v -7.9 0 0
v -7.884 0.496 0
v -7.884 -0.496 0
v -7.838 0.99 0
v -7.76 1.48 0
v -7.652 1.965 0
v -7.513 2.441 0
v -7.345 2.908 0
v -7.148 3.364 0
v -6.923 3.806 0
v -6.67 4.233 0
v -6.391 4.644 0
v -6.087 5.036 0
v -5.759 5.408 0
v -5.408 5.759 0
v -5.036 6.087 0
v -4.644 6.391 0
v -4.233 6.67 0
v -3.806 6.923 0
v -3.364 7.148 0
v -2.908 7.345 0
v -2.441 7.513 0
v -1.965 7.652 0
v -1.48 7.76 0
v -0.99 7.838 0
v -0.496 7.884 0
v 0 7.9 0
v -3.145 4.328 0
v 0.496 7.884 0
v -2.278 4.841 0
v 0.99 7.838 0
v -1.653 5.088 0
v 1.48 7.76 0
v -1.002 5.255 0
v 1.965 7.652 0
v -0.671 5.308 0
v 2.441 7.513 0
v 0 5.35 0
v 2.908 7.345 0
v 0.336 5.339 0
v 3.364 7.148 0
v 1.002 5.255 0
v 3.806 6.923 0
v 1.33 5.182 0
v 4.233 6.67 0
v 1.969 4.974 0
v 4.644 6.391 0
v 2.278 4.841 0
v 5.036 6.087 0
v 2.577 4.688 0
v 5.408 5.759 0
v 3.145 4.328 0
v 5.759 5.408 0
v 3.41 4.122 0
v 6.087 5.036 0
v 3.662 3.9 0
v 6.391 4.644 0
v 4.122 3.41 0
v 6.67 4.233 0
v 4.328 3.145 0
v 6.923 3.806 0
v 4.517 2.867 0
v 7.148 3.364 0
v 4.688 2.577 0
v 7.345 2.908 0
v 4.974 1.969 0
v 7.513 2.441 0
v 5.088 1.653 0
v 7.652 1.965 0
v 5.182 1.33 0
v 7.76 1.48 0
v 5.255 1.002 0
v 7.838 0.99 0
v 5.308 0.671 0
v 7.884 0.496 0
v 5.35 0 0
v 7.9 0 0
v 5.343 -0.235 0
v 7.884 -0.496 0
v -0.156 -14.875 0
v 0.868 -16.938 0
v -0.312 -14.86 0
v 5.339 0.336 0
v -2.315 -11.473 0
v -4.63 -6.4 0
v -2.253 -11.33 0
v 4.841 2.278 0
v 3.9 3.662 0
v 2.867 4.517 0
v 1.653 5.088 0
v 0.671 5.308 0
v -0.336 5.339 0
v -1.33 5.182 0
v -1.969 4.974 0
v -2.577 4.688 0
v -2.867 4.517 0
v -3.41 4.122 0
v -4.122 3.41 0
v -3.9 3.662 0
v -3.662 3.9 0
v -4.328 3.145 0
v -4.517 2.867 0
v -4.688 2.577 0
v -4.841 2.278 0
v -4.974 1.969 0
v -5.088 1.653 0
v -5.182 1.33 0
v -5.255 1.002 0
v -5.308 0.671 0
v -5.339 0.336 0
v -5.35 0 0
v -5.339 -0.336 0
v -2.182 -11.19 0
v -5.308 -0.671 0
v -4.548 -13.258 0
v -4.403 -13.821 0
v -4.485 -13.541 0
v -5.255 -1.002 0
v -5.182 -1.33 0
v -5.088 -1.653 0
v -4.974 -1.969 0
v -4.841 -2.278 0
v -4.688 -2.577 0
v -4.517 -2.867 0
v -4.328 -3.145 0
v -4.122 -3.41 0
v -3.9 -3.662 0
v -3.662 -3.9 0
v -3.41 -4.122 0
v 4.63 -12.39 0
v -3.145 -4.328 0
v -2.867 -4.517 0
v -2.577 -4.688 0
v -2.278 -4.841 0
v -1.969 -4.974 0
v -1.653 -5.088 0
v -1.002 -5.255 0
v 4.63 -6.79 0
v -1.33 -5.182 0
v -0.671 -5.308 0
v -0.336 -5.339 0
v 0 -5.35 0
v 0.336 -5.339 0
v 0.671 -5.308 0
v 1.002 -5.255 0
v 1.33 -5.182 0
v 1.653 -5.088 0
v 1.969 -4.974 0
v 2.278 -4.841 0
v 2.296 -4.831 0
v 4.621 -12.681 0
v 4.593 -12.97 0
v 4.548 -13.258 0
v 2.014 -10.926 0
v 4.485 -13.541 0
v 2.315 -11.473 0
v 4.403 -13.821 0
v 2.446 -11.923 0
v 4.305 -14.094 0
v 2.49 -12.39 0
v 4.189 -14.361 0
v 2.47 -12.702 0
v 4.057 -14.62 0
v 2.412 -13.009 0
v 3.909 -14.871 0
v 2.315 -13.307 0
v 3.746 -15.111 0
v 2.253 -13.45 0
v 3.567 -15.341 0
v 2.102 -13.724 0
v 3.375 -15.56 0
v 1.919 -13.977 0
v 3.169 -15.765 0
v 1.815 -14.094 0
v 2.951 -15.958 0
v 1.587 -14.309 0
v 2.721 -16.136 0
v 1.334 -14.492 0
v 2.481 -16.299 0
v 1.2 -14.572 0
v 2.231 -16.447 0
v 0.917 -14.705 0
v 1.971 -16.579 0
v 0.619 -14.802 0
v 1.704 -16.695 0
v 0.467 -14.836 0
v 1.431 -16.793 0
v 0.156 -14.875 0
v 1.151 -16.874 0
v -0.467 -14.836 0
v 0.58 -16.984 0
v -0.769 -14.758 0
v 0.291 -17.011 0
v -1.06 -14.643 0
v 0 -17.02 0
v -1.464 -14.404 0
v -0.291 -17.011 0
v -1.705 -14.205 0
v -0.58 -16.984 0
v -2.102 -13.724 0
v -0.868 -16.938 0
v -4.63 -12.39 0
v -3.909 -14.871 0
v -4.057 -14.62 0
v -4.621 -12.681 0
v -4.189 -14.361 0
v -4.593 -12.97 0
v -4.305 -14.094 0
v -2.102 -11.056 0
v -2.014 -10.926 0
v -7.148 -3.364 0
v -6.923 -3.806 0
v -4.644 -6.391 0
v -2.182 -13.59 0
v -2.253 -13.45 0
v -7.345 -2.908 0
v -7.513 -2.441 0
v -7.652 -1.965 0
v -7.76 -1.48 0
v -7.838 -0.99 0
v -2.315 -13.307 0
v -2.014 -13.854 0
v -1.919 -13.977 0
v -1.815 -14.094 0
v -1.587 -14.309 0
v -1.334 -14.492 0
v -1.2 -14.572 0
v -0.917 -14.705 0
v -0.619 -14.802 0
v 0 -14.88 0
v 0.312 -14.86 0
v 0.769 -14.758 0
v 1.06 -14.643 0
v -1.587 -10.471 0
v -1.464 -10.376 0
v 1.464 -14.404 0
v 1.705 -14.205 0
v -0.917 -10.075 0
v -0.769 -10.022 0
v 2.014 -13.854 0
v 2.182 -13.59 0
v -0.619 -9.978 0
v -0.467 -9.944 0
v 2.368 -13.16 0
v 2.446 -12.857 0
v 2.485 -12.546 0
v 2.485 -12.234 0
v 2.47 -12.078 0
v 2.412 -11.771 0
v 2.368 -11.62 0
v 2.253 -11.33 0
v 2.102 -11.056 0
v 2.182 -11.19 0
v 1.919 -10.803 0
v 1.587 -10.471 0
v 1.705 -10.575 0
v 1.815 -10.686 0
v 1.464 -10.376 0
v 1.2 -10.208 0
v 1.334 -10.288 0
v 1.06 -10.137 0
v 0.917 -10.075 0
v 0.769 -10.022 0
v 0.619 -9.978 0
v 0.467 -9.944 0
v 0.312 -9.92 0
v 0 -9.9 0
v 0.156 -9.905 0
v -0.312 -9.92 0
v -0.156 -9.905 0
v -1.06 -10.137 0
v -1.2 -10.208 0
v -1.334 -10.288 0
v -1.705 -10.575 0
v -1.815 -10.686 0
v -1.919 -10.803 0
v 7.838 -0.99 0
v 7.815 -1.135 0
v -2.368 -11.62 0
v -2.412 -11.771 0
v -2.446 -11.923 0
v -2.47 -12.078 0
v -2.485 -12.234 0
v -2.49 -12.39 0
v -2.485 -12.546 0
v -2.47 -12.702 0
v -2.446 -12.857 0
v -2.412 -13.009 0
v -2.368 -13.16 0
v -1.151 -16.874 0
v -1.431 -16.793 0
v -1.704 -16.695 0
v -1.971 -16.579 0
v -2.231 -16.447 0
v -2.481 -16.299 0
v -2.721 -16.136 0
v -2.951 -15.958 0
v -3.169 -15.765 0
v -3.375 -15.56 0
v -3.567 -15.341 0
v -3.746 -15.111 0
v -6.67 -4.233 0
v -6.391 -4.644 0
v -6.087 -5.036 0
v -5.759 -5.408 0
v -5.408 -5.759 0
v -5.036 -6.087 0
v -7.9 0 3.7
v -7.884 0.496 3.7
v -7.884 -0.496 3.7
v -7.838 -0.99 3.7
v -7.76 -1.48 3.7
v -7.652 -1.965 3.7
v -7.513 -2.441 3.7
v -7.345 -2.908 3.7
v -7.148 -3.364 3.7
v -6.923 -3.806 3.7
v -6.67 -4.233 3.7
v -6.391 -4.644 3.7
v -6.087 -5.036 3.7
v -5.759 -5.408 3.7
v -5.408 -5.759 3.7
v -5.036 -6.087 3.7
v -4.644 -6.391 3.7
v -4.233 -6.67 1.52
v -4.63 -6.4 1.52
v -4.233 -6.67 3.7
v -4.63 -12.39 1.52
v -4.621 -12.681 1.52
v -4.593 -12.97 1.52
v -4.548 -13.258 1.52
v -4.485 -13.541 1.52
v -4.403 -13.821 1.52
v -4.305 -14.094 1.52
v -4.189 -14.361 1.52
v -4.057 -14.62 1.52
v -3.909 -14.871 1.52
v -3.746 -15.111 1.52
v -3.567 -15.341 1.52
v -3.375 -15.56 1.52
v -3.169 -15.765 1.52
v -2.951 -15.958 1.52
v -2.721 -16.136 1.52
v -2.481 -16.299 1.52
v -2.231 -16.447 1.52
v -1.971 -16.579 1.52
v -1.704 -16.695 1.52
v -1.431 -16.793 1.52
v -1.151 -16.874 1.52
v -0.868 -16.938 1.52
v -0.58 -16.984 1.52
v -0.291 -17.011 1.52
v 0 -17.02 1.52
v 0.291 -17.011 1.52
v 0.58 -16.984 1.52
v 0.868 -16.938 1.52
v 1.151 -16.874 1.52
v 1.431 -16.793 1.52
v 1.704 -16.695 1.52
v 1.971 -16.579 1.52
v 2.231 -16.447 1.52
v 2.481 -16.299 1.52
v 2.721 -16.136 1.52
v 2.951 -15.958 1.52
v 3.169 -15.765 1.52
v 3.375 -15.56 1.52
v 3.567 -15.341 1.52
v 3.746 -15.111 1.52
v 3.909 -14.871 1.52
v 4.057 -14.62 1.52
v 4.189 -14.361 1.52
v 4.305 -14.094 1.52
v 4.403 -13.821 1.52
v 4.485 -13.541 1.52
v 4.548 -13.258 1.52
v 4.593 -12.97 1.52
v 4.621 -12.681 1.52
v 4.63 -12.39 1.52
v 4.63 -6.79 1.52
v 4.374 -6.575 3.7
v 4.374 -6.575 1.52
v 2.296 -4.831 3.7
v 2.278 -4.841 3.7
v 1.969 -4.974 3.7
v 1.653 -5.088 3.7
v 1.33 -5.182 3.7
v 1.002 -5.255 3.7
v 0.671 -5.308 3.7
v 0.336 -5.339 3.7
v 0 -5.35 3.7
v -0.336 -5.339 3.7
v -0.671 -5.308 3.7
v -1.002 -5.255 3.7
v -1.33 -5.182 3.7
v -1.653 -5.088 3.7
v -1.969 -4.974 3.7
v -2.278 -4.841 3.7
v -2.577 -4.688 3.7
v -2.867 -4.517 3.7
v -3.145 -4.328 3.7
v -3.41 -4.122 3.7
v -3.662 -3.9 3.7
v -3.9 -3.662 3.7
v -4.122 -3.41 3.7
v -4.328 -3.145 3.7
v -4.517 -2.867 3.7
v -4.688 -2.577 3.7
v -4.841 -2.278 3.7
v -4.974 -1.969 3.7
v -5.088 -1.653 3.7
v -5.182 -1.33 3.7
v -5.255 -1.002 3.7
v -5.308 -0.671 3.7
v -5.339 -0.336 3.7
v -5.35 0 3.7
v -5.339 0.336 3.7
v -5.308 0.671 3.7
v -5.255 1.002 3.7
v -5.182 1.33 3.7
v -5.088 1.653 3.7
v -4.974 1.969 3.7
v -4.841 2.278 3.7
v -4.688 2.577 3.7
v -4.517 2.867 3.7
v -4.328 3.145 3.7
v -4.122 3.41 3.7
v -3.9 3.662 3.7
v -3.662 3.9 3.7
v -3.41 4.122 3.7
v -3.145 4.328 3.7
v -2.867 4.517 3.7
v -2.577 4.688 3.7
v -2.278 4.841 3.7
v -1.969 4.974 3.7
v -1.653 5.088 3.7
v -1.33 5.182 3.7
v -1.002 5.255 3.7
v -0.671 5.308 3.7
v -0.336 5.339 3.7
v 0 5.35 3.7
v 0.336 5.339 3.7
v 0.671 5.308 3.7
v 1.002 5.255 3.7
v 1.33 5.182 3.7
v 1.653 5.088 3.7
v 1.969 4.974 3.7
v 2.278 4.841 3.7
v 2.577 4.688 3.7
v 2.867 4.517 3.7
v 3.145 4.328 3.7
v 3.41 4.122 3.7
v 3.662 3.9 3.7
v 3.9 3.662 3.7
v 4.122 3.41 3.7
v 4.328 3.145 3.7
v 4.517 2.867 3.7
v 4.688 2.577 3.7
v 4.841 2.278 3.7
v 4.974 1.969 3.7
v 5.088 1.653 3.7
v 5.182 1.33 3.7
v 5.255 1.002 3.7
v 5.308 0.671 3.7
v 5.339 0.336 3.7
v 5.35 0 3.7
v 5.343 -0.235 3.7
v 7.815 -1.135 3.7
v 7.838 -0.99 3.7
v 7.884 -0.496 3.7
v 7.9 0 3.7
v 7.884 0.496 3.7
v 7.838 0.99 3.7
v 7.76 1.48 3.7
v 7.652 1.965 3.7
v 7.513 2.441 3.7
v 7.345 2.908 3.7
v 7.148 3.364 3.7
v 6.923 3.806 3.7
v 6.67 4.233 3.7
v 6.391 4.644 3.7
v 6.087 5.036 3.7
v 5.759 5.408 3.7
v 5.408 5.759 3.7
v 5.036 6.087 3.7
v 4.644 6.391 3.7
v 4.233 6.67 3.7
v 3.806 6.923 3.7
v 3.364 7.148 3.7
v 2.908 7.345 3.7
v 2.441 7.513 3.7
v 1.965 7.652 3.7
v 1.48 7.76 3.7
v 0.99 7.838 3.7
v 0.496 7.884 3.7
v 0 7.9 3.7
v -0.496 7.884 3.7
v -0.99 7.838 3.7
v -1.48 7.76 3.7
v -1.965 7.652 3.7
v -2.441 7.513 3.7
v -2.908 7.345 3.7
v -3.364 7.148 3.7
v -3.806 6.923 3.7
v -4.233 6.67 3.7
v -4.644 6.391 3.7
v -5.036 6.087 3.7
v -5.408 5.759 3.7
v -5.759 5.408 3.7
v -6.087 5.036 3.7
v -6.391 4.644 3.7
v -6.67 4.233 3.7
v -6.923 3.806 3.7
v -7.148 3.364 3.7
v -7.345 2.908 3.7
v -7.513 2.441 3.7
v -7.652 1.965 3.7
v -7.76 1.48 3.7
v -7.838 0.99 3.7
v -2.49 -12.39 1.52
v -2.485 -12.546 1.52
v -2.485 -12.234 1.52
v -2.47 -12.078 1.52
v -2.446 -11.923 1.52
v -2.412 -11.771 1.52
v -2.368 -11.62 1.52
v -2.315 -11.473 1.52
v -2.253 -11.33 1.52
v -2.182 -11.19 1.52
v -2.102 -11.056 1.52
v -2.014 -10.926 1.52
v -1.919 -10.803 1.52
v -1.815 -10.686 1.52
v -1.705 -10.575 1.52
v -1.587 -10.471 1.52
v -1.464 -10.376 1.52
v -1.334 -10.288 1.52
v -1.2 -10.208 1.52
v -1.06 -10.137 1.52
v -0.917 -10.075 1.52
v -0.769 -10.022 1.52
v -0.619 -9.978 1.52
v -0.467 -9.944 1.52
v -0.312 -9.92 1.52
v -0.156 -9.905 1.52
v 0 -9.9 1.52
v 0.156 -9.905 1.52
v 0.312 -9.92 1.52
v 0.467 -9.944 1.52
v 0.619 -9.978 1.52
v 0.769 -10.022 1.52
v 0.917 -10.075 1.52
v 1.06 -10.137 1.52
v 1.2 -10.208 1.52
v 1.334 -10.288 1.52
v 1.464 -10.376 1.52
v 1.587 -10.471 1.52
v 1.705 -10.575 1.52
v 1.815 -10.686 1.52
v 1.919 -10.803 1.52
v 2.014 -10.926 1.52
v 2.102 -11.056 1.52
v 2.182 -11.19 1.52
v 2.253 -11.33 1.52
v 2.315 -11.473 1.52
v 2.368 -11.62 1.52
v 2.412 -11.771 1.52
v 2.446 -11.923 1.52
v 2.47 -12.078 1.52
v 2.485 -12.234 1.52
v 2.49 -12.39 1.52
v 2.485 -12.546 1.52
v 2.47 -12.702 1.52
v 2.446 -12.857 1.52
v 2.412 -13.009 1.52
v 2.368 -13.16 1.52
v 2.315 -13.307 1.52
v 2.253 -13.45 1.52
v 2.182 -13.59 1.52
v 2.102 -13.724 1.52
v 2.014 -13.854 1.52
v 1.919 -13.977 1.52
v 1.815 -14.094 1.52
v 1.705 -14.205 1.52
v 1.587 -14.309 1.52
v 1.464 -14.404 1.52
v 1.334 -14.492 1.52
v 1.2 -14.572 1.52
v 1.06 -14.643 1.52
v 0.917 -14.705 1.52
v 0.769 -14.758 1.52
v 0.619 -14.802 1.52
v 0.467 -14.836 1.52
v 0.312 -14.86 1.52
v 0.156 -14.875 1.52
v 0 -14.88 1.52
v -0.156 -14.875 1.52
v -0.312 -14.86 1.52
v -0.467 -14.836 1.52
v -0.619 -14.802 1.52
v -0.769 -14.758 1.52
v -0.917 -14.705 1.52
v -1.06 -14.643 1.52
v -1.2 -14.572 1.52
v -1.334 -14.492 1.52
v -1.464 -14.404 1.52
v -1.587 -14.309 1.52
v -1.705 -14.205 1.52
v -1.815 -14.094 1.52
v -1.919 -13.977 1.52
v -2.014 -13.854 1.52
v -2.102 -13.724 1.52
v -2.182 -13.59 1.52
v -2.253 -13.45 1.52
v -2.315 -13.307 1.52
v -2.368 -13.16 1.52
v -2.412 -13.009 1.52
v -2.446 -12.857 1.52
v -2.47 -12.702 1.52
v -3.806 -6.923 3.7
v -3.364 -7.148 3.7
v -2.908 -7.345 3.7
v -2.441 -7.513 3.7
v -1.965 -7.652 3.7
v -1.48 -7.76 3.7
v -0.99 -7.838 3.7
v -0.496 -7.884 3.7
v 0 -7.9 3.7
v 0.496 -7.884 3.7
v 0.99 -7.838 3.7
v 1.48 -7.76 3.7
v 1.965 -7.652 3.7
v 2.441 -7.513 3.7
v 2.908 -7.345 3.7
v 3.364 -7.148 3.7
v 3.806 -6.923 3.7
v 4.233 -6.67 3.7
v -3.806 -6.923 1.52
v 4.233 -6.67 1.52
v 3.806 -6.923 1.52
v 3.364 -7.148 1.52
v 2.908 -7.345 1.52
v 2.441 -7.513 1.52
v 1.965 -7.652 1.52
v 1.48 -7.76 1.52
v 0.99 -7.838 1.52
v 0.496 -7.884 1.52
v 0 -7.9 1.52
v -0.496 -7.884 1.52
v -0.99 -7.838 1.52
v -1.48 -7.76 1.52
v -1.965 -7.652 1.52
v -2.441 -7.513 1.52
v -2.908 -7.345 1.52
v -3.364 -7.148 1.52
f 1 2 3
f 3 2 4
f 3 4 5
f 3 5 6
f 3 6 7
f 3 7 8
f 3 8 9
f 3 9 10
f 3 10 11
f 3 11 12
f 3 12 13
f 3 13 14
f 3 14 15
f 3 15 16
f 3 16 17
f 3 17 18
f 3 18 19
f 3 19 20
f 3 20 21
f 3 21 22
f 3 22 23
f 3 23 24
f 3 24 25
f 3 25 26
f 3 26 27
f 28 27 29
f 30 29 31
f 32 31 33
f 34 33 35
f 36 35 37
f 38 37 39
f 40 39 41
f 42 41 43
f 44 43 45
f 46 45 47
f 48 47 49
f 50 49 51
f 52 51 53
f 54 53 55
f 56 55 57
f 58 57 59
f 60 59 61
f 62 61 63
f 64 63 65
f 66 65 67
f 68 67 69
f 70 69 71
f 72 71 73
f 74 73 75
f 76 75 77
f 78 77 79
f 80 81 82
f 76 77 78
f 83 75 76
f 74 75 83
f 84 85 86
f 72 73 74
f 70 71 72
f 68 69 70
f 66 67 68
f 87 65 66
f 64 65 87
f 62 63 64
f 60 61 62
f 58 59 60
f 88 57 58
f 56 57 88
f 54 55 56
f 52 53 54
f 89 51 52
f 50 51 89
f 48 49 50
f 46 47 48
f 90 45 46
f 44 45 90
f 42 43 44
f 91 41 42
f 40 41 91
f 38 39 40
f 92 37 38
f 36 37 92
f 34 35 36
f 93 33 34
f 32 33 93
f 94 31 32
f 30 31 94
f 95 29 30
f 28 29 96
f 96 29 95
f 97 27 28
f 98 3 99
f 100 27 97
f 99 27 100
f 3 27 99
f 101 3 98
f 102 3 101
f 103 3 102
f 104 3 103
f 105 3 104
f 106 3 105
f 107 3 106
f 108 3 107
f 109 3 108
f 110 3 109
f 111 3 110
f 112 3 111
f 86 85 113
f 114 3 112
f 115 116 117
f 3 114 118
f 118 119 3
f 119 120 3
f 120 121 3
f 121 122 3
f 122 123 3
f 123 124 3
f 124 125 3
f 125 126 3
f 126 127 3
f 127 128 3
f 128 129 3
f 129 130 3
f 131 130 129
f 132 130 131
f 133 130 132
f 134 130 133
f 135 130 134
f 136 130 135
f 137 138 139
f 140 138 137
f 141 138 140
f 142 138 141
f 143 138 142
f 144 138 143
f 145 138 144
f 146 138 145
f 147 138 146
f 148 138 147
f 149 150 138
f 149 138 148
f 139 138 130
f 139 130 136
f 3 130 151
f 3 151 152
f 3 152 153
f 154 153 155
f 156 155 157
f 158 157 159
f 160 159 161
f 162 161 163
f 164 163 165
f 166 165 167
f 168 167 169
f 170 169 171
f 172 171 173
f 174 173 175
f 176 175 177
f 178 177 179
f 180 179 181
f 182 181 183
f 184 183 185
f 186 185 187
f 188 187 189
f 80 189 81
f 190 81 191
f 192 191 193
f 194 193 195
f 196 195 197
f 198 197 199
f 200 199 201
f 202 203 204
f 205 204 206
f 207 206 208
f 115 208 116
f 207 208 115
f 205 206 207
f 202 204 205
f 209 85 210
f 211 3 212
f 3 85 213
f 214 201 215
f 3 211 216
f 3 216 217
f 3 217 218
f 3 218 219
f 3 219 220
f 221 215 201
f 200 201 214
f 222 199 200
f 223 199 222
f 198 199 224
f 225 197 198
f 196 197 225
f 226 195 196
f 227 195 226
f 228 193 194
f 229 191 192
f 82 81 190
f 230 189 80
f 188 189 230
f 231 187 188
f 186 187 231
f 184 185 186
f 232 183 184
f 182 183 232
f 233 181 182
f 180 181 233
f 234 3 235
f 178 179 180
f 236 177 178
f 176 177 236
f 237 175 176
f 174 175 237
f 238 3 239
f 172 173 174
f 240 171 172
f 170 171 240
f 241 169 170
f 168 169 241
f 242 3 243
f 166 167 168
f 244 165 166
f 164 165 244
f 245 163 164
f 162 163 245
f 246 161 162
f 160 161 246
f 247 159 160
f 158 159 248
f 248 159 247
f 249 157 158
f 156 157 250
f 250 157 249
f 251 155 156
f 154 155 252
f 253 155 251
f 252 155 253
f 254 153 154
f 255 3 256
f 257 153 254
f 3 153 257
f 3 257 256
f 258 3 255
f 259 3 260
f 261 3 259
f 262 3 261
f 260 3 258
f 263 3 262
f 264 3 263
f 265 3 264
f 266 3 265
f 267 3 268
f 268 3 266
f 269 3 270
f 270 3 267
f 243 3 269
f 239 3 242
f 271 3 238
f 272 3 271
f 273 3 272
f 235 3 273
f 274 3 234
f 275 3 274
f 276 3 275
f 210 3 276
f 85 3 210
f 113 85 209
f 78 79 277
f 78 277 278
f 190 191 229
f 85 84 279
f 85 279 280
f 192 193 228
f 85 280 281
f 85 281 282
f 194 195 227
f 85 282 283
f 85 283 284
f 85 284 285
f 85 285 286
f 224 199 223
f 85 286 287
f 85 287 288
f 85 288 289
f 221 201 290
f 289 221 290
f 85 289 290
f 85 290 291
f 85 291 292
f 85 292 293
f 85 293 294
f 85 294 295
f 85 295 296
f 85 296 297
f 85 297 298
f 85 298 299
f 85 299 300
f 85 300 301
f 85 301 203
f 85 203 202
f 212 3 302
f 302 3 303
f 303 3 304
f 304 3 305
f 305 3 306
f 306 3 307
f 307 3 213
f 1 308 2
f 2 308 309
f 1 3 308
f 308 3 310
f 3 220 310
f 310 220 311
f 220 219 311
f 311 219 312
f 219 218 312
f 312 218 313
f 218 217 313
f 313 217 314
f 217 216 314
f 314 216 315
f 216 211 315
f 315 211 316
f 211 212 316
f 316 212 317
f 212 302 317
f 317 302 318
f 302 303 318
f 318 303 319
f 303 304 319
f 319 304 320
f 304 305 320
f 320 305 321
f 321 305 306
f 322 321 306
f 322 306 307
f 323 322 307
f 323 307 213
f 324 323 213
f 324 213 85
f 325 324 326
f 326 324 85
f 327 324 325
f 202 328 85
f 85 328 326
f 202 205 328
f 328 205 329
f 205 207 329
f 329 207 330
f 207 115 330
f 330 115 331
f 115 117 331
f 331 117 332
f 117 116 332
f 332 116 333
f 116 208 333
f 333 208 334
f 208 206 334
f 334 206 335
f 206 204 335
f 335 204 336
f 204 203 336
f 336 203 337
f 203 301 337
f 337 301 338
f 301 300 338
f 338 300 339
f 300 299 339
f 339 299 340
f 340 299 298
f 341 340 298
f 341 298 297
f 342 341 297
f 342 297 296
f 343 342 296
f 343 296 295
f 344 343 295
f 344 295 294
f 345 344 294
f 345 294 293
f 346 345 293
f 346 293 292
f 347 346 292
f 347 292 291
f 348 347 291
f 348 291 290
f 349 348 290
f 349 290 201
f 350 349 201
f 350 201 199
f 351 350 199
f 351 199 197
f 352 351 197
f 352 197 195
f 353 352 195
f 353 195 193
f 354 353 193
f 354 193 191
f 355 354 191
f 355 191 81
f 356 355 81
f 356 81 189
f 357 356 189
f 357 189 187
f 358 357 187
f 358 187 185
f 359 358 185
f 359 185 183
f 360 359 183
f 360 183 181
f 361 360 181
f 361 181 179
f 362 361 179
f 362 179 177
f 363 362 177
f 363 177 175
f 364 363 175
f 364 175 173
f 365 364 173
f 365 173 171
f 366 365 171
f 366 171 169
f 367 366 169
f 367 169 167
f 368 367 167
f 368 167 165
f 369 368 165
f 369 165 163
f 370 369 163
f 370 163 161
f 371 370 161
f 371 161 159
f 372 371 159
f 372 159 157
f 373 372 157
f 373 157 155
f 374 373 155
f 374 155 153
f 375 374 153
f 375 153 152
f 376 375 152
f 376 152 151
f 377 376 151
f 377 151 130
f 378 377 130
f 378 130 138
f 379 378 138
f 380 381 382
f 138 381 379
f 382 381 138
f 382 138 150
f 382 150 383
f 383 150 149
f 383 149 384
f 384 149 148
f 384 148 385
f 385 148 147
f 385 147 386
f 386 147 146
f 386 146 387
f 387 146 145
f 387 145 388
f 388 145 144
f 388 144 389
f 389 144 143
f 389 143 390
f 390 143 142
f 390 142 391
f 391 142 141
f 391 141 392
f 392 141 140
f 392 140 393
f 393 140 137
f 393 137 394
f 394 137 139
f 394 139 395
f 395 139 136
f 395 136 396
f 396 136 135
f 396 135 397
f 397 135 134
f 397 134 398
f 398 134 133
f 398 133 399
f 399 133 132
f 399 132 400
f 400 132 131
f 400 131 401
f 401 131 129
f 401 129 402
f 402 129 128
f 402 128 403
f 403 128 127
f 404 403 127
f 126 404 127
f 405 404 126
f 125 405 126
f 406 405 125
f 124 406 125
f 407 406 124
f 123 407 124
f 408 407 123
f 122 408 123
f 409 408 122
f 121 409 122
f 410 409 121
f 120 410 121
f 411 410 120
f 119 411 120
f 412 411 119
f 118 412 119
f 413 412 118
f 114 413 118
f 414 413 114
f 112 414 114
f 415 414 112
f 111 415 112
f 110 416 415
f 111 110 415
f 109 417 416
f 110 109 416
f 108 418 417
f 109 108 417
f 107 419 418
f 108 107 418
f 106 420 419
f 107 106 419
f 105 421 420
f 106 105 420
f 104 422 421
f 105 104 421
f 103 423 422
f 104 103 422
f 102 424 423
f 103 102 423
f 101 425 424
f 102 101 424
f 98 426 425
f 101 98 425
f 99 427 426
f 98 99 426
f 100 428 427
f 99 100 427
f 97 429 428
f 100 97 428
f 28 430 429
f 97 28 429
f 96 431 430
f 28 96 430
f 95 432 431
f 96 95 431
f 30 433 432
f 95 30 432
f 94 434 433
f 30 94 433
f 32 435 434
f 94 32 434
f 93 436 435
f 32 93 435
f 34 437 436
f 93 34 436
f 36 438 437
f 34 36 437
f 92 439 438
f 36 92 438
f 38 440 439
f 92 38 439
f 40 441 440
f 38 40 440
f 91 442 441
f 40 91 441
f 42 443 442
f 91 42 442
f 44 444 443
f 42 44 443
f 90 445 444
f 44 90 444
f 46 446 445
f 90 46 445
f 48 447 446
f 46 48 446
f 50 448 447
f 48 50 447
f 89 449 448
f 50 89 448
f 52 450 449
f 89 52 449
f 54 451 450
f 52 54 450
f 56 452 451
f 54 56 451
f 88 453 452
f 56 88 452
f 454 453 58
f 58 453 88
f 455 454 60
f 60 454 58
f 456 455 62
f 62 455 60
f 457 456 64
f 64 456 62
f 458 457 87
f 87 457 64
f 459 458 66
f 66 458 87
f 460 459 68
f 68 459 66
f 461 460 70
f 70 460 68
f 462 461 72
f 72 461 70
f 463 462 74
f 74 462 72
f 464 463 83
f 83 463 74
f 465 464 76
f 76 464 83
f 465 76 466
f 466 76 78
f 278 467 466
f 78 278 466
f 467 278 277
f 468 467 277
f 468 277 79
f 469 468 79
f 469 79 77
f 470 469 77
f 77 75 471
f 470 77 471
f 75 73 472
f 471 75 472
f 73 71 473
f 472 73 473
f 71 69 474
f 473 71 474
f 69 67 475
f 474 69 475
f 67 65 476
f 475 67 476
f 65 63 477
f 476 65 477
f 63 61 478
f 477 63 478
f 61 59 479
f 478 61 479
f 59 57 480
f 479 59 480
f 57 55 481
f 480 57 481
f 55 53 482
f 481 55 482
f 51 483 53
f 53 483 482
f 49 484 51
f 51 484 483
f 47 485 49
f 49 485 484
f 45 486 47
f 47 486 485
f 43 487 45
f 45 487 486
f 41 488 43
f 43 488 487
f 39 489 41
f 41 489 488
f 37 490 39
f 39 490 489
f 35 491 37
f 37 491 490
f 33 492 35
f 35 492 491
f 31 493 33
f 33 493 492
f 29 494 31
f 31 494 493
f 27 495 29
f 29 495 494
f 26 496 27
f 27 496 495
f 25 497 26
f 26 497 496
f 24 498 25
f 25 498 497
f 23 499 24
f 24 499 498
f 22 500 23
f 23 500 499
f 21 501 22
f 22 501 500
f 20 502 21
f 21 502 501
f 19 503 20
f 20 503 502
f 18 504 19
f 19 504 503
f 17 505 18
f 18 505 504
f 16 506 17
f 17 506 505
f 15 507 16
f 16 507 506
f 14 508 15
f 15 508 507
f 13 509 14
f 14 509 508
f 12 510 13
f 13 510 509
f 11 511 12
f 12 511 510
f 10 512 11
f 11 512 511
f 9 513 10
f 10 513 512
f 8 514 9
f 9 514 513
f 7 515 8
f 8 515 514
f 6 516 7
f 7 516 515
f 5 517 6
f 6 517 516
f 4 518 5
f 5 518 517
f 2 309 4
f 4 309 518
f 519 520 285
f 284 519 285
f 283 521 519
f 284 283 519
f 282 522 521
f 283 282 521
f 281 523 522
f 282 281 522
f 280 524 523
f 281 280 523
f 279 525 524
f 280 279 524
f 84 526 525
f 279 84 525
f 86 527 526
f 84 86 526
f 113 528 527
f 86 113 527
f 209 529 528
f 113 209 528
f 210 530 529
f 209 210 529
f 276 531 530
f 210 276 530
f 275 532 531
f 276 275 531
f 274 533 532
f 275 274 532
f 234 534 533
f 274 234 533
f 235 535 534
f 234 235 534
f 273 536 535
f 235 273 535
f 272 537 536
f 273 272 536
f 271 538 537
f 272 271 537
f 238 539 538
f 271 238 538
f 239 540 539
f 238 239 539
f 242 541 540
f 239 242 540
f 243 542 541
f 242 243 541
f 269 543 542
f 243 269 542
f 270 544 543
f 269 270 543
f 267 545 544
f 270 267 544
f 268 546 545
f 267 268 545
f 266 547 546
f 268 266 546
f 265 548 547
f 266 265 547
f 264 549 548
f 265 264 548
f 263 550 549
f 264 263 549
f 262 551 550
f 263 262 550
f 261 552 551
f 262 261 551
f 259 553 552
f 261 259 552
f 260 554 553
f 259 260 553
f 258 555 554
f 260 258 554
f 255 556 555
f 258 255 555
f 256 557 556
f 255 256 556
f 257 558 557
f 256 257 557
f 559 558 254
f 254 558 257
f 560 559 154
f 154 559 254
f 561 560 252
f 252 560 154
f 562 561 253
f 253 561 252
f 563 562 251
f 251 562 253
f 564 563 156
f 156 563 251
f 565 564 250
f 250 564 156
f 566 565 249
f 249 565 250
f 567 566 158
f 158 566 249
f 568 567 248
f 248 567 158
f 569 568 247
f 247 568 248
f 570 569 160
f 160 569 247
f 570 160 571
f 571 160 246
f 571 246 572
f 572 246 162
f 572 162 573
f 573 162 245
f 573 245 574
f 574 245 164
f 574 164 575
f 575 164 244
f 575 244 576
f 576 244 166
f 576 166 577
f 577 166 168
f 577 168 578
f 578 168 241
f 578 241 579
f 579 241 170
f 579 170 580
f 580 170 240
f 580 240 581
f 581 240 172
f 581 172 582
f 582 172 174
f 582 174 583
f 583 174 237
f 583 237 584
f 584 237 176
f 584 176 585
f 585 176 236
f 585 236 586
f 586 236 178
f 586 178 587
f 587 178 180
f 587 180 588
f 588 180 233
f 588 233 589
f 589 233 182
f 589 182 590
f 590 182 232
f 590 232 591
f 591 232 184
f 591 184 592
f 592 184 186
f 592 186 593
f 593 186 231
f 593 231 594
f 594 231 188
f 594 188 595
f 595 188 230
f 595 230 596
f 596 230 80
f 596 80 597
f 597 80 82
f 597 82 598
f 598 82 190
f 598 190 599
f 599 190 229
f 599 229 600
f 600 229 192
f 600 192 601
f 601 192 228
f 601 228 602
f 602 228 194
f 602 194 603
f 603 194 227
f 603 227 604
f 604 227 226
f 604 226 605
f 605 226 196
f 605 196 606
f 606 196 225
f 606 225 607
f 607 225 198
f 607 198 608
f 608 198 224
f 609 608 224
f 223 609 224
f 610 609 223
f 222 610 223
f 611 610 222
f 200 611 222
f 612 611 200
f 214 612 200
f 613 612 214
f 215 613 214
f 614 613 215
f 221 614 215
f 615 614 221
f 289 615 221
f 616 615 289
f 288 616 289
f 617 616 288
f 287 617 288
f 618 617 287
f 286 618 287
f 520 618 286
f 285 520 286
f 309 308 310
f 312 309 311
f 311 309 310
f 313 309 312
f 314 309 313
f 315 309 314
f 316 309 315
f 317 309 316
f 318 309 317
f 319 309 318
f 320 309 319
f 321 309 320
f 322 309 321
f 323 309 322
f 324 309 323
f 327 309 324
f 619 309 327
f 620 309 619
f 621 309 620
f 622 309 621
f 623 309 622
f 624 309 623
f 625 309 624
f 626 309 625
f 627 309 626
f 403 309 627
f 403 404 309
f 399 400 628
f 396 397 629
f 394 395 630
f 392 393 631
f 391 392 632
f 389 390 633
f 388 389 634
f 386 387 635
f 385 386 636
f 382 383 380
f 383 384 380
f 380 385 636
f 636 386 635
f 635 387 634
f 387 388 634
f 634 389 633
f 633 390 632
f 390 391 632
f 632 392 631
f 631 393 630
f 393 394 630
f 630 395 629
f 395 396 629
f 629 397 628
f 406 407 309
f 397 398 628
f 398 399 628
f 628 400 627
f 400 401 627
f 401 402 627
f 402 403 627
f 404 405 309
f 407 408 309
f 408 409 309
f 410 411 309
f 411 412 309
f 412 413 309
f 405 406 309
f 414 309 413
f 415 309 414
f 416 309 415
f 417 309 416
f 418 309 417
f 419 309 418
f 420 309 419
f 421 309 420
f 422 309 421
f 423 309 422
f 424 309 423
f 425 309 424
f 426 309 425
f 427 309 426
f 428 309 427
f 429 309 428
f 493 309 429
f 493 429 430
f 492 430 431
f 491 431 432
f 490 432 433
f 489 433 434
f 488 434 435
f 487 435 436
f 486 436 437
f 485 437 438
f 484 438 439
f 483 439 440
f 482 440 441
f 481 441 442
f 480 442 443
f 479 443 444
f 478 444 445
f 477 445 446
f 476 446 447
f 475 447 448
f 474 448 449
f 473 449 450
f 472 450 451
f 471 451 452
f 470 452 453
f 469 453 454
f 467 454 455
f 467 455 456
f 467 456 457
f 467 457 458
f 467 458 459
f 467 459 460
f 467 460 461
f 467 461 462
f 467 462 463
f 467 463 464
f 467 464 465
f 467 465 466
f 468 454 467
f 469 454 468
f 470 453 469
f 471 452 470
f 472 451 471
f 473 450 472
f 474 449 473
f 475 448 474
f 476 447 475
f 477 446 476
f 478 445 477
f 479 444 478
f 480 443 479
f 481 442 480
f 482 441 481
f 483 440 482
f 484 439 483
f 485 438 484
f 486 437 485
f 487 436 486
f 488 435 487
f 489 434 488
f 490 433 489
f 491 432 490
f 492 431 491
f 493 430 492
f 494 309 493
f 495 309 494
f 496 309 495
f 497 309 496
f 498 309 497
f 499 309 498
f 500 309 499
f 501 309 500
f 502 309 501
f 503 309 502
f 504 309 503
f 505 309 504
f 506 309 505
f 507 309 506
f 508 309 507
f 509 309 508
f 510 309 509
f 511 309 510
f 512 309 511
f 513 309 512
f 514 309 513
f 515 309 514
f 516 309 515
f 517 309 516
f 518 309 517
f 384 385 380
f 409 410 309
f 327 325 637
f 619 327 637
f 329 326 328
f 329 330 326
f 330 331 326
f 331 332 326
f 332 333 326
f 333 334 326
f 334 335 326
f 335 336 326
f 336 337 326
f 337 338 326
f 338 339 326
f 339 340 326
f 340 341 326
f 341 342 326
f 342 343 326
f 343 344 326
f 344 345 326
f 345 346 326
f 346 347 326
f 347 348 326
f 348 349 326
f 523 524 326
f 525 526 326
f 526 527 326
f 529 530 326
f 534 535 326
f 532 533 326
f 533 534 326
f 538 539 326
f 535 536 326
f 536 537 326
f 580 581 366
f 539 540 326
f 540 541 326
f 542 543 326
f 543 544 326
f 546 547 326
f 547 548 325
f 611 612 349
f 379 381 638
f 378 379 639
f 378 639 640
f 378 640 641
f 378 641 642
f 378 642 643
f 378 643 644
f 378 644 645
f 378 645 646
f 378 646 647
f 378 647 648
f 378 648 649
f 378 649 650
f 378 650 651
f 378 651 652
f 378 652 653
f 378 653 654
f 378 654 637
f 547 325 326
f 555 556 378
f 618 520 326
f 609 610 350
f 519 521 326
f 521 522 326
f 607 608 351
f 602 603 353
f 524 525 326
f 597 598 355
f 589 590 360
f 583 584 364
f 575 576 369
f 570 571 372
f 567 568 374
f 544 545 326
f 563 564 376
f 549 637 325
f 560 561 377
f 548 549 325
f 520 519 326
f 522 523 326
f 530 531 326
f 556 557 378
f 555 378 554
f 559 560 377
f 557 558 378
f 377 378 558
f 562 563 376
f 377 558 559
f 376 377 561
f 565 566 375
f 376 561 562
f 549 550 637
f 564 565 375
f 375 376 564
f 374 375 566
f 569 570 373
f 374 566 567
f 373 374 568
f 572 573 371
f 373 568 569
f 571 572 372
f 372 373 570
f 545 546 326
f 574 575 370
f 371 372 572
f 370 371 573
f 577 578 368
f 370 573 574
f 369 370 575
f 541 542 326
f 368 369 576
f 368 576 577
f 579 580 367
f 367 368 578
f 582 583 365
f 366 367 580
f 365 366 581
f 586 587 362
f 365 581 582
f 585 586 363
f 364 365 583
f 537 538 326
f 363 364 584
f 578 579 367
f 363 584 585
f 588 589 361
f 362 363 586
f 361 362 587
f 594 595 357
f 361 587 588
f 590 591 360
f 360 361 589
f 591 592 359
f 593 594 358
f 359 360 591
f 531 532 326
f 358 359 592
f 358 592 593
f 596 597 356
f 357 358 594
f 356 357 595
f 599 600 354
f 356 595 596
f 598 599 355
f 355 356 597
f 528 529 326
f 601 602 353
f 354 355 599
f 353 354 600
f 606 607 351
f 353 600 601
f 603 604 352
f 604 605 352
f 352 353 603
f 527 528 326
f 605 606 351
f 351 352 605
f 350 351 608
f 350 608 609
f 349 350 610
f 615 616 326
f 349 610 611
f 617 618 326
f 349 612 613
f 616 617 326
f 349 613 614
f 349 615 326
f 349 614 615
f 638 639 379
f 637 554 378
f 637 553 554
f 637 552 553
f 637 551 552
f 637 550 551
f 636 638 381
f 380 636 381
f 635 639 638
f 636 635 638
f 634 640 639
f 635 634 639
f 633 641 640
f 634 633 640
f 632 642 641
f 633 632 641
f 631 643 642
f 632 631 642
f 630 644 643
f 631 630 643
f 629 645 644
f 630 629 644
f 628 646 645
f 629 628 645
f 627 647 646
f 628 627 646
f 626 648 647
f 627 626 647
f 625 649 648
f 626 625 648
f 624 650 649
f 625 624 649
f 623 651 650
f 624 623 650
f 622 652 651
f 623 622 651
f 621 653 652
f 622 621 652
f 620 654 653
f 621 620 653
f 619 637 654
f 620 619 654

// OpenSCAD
// Global Parameters
hook_diameter_ext   = 15.8;
hook_thickness      = 2.55;
hook_depth          = 3.7;
hook_opening        = 4.45;
eye_diameter        = 4.98;
eye_thickness       = 2.14;
eye_hook_gap        = 2;
eye_depth           = 1.52;

module curtainhook() {

    difference() {

        // Things that exist
        union() {
            translate( v = [ 0, -hook_diameter_ext/2 - (eye_diameter/2) - eye_hook_gap, 0 ] ) {

                // Body of eye
                cylinder( h = eye_depth, r = eye_diameter/2 + eye_thickness, $fn=100 );

                // Body of eye
                translate( v = [ -(eye_diameter + 2*eye_thickness)/2, 0, 0] ) {
                    cube( size = [eye_diameter + eye_thickness*2, eye_diameter/2 + eye_thickness + eye_hook_gap + hook_thickness/2, eye_depth] );
                }
            }

            // Body of hook
            cylinder( h = hook_depth, r = hook_diameter_ext/2, $fn=100 );
        }

        // Things to be cut out
        union() {

            // Hole in eye
            translate( v = [ 0, -hook_diameter_ext/2 - (eye_diameter/2) - eye_hook_gap, 0 ] ) {
                cylinder( h = hook_depth, r = eye_diameter/2, $fn=100 );
            }

            // Hole in centre of hook
            cylinder( h = hook_depth, r = hook_diameter_ext/2 - hook_thickness, $fn=100 );

            // Opening
            rotate( a = [ 0, 0, -40] ) {
                translate( v = [hook_diameter_ext/2 - hook_thickness * 1.5, -hook_opening/2, 0] ) {
                    # cube( size = [hook_thickness * 2, hook_opening, hook_thickness*1.5] );
                }
            }

            // Opening
            translate( v = [hook_diameter_ext/2 - hook_thickness * 2, -hook_opening/1.1, 0] ) {
                rotate( a = [ 0, 0, -20] ) {
                    # cube( size = [hook_thickness * 2, hook_opening, hook_thickness*1.5] );
                }
            }

        }

    }

}

curtainhook();

// http://en.wikibooks.org/wiki/OpenSCAD_User_Manual

// primitives
// cube(size = [1,2,3], center = true);
// sphere( r = 10, $fn=100 );
// circle( r = 10 );
// cylinder( h = 10, r = 20, $fs = 6, center = true );
// cylinder( h = 10, r1 = 10, r2 = 20, $fs = 6, center = false );
// polyhedron(points = [ [x, y, z], ... ], triangles = [ [p1, p2, p3..], ... ], convexity = N);
// polygon(points = [ [x, y], ... ], paths = [ [p1, p2, p3..], ... ], convexity = N);

// transormations
// scale(v = [x, y, z]) { ... }
// rotate(a=[0,180,0]) { ... }
// translate(v = [x, y, z]) { ... }
// mirror([ 0, 1, 0 ]) { ... }

// rounded box by combining a cube and single cylinder
// $fn=50;
// minkowski() {
//   cube([10,10,1]);
//   cylinder(r=2,h=1);
// }

// hull() {
//   translate([15,10,0]) circle(10);
//   circle(10);
// }

// dxf_linear_extrude(file="tridentlogo.dxf", height = 1, center = false, convexity = 10);
// deprecated - import_dxf(file="design.dxf", layer="layername", origin = [100,100], scale = 0.5);
// linear_extrude(height = 10, center = true, convexity = 10, twist = 0, $fn = 100)
// rotate_extrude(convexity = 10, $fn = 100)
// import_stl("example012.stl", convexity = 5);

// for (z = [-1, 1] ) { ... } // two iterations, z = -1, z = 1
// for (z = [ 0 : 5 ] ) { ... } // range of interations step 1
// for (z = [ 0 : 2 : 5 ] ) { ... } // range of interations step 2

// for (i = [ [ 0, 0, 0 ], [...] ] ) { ... } // range of rotations or vectors
// usage say rotate($i) or translate($i)
// if ( x > y ) { ... } else { ... }
// assign (angle = i*360/20, distance = i*10, r = i*2)
